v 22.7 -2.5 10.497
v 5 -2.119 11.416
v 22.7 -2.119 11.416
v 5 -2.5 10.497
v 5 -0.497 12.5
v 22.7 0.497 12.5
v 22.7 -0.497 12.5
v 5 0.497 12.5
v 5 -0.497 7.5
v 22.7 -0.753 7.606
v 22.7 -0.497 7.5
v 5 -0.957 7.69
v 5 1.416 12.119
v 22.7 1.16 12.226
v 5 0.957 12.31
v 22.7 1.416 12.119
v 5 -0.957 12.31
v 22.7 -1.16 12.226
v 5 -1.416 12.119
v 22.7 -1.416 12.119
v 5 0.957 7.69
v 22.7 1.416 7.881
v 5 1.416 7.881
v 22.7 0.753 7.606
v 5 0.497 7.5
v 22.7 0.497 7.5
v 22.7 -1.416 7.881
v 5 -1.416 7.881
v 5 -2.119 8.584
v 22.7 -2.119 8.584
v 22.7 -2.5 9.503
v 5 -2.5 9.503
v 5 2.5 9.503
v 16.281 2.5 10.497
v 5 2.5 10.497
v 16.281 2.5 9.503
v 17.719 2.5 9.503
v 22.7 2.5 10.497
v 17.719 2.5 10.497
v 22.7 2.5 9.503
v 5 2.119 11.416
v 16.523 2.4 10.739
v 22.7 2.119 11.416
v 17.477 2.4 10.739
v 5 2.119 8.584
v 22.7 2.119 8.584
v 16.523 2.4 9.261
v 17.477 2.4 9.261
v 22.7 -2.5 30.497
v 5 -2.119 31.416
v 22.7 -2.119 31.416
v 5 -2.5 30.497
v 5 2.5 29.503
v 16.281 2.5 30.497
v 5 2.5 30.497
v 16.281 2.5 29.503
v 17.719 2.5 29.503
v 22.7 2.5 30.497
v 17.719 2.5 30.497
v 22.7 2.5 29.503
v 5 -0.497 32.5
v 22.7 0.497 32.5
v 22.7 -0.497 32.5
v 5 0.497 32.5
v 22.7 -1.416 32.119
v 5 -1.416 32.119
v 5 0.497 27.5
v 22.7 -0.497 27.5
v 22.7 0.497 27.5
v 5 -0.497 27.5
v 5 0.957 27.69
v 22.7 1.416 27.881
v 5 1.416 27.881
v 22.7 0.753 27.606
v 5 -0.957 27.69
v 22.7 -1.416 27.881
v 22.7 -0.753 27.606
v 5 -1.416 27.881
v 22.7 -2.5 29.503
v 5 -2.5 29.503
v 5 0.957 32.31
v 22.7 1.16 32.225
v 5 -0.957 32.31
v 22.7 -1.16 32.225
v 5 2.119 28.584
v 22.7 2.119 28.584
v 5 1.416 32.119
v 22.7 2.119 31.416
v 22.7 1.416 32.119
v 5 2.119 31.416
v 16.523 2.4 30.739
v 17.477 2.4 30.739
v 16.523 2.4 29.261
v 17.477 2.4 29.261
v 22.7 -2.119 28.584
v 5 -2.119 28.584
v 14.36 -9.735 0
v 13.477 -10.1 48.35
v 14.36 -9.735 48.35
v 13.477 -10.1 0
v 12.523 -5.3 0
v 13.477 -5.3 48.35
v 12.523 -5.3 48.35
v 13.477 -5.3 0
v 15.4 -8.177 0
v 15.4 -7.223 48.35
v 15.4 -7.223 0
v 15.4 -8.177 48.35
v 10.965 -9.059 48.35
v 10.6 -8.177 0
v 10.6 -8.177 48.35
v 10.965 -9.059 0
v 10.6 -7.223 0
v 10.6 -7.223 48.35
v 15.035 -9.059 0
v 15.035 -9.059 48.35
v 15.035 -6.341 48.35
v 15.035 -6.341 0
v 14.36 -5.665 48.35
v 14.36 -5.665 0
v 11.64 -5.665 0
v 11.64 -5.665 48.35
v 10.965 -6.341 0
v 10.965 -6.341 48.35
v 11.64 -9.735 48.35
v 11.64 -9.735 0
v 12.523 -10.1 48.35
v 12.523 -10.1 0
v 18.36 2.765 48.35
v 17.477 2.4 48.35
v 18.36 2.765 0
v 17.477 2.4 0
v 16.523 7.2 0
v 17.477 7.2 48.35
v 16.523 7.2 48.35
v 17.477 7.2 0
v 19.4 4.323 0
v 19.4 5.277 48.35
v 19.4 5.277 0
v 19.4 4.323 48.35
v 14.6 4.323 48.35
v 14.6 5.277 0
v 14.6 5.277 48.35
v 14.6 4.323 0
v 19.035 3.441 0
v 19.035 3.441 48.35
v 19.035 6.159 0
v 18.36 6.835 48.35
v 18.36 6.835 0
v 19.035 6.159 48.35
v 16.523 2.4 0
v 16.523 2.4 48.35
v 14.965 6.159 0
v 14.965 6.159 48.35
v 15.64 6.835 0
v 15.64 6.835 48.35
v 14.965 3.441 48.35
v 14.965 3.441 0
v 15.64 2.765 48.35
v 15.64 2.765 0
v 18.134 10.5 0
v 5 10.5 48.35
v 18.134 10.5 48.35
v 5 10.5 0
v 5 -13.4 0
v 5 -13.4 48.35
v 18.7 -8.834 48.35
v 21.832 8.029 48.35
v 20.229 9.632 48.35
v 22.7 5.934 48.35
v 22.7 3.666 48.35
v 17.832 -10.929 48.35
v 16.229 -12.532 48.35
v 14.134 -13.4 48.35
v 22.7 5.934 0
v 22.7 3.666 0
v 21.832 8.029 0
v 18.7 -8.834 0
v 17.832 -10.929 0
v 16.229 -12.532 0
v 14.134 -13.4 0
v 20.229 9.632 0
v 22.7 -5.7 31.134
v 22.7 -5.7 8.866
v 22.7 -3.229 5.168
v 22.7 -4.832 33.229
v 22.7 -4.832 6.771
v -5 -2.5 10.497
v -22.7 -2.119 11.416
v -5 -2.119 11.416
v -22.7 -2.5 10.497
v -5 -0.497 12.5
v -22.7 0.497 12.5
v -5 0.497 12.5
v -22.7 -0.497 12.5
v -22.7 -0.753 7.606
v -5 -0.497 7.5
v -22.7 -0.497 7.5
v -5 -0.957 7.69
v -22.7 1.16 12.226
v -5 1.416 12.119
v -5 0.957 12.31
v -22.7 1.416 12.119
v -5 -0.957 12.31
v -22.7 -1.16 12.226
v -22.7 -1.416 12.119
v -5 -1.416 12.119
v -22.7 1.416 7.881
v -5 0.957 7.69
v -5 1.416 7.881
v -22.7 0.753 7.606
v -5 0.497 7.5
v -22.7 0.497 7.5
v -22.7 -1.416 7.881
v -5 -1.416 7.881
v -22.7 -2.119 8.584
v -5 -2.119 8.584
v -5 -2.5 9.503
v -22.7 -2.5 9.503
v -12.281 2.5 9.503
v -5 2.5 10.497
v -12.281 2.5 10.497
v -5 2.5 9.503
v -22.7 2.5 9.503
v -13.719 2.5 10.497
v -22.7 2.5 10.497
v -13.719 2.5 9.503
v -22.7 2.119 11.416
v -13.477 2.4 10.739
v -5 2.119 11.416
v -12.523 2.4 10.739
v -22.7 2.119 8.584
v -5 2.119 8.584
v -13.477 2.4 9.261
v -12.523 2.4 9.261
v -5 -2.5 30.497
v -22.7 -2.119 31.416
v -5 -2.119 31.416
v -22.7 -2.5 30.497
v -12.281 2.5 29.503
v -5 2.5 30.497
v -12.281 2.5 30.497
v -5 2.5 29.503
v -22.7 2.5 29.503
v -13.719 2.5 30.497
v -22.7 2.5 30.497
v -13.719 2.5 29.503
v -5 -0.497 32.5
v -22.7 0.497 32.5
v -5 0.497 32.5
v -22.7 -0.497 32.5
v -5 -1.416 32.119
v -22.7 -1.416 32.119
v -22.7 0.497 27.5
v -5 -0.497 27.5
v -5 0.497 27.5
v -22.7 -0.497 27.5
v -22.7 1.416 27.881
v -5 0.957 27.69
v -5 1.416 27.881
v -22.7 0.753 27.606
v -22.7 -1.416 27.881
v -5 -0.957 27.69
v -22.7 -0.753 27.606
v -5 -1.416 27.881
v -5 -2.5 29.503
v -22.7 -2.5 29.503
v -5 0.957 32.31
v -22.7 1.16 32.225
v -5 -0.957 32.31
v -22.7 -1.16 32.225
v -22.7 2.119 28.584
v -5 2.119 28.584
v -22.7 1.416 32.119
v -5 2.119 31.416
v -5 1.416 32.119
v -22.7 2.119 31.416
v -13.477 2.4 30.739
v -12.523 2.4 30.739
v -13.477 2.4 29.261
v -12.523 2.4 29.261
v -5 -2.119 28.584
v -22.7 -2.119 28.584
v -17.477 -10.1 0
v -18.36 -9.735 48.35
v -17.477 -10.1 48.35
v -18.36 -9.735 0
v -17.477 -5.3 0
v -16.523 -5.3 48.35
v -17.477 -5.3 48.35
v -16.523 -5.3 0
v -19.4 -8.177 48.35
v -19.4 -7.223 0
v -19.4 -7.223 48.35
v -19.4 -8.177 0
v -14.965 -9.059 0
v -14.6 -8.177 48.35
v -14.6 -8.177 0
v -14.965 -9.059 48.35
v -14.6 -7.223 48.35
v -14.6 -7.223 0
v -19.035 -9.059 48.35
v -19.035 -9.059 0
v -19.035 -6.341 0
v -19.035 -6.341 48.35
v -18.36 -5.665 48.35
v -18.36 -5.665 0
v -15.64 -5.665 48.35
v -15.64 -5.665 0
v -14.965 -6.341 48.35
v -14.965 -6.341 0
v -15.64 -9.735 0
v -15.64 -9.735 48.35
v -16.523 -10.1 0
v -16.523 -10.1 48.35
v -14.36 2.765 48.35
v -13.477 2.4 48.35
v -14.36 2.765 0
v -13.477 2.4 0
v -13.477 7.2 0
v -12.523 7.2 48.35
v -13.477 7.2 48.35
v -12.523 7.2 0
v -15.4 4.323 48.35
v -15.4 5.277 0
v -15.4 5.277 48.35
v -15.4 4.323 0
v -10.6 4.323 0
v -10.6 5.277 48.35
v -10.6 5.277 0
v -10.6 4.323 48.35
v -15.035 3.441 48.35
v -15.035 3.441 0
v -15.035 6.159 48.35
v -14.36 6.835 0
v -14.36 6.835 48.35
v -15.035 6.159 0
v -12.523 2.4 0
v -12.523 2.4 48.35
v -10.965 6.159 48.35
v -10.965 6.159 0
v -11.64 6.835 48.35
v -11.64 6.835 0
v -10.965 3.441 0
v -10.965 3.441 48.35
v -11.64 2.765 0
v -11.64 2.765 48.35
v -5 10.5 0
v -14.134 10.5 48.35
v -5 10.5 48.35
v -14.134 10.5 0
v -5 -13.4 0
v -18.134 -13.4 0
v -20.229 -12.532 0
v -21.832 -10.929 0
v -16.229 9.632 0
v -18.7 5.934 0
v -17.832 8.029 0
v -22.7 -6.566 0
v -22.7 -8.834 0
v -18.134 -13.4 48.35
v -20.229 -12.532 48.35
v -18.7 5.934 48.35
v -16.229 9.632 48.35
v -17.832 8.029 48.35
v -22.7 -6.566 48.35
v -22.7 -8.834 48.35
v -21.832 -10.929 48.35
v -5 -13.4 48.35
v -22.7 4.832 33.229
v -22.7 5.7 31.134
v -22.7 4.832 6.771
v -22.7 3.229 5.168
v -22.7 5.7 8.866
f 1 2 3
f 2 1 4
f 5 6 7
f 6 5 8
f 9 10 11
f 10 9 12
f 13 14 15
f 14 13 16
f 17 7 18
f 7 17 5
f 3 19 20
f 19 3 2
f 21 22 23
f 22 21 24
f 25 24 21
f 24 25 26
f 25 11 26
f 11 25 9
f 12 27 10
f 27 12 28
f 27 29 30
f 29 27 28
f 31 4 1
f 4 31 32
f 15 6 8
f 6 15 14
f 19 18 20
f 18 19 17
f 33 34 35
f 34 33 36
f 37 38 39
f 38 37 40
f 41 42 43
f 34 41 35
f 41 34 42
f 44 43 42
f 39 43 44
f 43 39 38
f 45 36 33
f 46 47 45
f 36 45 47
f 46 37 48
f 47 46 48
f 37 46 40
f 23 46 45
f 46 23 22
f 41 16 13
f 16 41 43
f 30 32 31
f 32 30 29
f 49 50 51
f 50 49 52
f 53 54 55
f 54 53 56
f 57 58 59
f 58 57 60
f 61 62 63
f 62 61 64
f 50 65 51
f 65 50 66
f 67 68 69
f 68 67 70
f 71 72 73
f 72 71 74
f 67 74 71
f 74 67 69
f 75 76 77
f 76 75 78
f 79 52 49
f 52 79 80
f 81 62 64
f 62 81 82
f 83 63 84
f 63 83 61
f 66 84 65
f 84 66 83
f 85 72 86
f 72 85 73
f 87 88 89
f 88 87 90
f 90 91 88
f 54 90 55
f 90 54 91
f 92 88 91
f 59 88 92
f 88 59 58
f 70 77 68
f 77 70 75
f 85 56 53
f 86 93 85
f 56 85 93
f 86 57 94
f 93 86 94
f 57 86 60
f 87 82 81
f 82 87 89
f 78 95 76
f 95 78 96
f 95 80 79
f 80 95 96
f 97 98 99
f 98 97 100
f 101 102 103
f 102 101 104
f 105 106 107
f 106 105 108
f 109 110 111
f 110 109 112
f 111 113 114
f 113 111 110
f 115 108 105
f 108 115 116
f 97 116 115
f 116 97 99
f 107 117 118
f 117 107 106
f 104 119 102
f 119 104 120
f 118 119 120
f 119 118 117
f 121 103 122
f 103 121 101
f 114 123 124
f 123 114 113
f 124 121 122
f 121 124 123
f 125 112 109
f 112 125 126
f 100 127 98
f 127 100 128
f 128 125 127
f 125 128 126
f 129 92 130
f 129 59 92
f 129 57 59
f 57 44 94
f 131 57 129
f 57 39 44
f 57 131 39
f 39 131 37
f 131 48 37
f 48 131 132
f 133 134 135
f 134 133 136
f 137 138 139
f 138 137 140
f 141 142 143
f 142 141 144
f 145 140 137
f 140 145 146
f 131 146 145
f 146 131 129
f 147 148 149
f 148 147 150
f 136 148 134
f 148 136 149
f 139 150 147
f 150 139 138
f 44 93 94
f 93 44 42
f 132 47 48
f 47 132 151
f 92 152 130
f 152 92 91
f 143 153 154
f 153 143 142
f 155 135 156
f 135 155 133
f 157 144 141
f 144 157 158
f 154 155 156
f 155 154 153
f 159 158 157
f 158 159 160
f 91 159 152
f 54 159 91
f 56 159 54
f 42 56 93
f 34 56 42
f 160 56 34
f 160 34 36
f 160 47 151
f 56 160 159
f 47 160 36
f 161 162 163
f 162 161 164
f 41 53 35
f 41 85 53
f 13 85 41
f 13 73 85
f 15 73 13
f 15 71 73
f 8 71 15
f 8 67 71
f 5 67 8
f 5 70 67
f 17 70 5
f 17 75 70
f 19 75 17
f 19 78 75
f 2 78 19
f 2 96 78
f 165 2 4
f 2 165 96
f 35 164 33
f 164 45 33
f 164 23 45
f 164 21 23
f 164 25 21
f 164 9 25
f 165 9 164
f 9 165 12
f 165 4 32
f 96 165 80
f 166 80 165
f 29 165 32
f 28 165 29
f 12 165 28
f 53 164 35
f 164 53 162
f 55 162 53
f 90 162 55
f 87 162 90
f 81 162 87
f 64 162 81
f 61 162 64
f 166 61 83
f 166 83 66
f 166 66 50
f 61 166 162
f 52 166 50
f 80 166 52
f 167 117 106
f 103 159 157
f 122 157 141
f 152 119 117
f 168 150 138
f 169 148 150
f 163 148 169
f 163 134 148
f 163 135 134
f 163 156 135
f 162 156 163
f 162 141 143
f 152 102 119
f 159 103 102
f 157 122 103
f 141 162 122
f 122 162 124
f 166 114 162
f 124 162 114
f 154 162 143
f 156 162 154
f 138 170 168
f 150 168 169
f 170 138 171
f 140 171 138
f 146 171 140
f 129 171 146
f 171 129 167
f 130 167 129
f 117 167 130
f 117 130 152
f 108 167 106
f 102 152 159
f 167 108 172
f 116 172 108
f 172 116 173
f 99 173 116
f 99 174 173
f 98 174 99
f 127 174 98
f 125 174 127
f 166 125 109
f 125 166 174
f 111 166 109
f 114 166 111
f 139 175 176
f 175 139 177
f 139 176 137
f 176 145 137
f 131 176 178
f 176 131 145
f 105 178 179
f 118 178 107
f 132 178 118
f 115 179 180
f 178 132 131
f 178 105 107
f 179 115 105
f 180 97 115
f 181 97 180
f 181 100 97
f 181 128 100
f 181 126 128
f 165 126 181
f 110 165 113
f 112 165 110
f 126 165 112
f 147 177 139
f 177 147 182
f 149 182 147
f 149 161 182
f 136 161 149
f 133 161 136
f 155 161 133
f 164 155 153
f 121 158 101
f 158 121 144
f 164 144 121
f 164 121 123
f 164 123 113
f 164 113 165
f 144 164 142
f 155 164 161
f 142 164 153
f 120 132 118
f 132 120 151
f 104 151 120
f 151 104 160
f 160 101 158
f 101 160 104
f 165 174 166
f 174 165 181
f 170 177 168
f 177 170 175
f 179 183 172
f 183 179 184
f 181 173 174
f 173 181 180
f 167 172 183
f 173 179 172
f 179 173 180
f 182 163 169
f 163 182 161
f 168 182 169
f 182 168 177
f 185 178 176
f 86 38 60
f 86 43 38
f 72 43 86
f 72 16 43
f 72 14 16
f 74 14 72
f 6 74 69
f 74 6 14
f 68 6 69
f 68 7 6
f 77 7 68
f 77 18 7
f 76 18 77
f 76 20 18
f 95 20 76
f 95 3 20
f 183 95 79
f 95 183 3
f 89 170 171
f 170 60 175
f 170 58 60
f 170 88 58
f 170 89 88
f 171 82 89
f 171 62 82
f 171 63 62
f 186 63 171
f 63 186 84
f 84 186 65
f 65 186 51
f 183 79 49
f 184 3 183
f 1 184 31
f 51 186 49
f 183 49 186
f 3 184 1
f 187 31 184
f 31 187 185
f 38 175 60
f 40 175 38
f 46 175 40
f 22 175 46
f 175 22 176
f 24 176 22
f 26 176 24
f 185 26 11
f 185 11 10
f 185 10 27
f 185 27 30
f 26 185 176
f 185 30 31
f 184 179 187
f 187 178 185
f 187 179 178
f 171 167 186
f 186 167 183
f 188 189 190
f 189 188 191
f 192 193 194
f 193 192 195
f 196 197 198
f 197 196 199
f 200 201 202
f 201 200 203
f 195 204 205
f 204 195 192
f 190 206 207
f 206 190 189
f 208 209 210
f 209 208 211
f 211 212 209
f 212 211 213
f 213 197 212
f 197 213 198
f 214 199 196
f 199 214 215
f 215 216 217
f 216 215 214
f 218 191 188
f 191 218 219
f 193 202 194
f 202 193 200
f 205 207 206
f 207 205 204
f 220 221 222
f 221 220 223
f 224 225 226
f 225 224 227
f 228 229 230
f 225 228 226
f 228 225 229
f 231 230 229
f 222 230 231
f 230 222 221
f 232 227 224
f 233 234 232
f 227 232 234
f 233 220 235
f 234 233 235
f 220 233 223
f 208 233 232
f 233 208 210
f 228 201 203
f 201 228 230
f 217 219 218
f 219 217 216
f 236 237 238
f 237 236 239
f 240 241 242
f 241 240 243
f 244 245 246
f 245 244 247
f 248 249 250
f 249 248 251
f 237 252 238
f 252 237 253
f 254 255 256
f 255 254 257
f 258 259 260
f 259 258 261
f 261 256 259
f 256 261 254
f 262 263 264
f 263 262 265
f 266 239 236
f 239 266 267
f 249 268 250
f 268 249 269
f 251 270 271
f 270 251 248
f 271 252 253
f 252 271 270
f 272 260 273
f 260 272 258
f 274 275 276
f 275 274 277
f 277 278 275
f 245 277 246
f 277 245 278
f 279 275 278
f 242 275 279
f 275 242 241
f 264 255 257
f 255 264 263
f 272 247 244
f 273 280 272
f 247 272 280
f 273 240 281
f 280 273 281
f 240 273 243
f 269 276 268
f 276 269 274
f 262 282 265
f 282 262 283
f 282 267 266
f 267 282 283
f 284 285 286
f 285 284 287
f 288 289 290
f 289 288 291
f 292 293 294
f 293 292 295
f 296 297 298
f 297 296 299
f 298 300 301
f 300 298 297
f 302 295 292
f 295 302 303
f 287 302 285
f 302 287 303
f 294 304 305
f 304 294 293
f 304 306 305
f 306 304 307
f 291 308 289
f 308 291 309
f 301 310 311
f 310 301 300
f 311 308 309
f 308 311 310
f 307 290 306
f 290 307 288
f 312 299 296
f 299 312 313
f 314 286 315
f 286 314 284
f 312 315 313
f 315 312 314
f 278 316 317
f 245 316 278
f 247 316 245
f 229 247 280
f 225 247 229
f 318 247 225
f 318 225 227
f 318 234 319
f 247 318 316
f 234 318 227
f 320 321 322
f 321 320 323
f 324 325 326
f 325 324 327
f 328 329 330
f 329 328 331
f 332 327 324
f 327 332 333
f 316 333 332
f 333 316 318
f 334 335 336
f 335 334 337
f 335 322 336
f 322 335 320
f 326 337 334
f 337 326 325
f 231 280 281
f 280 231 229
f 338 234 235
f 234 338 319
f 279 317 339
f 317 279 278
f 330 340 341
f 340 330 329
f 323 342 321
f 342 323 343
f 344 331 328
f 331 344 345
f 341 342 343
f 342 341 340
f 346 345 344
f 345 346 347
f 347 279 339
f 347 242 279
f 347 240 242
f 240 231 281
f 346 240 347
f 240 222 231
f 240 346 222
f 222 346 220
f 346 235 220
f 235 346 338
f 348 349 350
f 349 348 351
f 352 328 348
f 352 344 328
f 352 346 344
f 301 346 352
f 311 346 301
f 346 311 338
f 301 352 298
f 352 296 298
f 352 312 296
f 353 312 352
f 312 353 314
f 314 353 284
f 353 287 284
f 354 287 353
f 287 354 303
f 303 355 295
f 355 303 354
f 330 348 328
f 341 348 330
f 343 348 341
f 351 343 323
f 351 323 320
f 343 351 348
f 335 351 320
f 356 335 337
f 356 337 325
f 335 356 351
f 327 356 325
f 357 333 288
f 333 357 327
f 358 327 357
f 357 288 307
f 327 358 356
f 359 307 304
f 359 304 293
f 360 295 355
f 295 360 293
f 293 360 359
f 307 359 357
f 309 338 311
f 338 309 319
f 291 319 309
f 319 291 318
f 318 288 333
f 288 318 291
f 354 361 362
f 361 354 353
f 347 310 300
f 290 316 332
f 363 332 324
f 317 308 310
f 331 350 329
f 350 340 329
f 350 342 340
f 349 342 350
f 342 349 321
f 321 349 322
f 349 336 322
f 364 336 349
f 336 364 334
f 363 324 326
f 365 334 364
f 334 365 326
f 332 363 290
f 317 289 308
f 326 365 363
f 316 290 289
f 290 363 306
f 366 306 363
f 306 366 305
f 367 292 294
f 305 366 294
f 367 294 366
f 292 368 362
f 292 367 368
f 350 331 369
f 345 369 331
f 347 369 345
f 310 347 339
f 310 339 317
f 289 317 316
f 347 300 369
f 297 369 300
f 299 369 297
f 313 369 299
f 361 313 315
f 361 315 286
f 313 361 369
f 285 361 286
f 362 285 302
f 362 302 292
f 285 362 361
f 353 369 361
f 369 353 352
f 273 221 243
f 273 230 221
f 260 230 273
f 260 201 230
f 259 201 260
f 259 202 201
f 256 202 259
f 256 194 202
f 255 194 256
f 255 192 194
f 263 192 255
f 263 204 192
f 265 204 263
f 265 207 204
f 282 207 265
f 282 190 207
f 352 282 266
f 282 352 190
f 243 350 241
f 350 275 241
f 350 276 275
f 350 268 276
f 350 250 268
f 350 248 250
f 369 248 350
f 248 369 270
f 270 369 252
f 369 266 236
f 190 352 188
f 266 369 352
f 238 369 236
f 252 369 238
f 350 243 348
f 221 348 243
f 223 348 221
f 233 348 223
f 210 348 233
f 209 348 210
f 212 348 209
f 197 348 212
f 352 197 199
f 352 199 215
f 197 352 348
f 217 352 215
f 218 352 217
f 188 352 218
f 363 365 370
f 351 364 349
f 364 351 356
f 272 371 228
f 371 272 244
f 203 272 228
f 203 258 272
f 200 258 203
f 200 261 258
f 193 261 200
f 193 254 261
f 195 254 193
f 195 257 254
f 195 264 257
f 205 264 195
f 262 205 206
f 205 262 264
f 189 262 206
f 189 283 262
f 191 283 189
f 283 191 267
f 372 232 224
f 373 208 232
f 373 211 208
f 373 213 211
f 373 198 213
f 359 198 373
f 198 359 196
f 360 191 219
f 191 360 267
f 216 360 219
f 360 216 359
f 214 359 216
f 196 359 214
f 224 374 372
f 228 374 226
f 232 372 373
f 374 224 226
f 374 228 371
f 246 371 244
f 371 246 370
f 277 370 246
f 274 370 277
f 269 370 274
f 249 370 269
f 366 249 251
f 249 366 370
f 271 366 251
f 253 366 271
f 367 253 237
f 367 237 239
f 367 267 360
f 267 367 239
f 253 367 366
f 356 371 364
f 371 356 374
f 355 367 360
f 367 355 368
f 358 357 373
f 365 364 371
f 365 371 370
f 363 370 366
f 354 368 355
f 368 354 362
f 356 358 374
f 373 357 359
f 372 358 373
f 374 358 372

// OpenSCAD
// file: util.scad
function accurate_diam(diam,sides) = 1 / cos(180/sides) / 2 * diam;

module hole(diam,len,sides=8) {
  rotate([0,0,180/sides]) {
    cylinder(r=accurate_diam(diam,sides),h=len,center=true,$fn=sides);
  }
}

module accurate_circle(diam,sides=8) {
  rotate([0,0,180/sides]) {
    circle(r=accurate_diam(diam,sides),$fn=sides);
  }
}

module debug_axes() {
  color("red") {
    translate([50,0,0]) cube([100,.2,.2],center=true);
    translate([0,50,0]) cube([.2,100,.2],center=true);
    translate([0,0,50]) cube([.2,.2,100],center=true);
  }
}

module ring(id,thickness,height,fn=16) {
  od = id + thickness;
  linear_extrude(height=height,center=true) {
    difference() {
      accurate_circle(od,fn);
      accurate_circle(id,fn);
    }
  }
}

module rounded_square(width,depth,diam,fn=resolution) {
  pos_x = width/2-diam/2;
  pos_y = depth/2-diam/2;

  hull() {
    for(x=[left,right]) {
      for(y=[front,rear]) {
        translate([x*pos_x,y*pos_y,0]) {
          accurate_circle(diam,fn);
        }
      }
    }
  }
}

module rounded_cube(width,depth,height,diam,fn=resolution) {
  linear_extrude(height=height,center=true,convexity=3) {
    rounded_square(width,depth,diam,fn);
  }
}
// main file
include <main.scad>;

for(side=[0,1]) {
  mirror([side,0,0]) {
    translate([5,0,0]) {
      rotate([0,0,-90]) {
        color(colors[side]) rear_idler_mount(side);
      }
    }
  }
}
